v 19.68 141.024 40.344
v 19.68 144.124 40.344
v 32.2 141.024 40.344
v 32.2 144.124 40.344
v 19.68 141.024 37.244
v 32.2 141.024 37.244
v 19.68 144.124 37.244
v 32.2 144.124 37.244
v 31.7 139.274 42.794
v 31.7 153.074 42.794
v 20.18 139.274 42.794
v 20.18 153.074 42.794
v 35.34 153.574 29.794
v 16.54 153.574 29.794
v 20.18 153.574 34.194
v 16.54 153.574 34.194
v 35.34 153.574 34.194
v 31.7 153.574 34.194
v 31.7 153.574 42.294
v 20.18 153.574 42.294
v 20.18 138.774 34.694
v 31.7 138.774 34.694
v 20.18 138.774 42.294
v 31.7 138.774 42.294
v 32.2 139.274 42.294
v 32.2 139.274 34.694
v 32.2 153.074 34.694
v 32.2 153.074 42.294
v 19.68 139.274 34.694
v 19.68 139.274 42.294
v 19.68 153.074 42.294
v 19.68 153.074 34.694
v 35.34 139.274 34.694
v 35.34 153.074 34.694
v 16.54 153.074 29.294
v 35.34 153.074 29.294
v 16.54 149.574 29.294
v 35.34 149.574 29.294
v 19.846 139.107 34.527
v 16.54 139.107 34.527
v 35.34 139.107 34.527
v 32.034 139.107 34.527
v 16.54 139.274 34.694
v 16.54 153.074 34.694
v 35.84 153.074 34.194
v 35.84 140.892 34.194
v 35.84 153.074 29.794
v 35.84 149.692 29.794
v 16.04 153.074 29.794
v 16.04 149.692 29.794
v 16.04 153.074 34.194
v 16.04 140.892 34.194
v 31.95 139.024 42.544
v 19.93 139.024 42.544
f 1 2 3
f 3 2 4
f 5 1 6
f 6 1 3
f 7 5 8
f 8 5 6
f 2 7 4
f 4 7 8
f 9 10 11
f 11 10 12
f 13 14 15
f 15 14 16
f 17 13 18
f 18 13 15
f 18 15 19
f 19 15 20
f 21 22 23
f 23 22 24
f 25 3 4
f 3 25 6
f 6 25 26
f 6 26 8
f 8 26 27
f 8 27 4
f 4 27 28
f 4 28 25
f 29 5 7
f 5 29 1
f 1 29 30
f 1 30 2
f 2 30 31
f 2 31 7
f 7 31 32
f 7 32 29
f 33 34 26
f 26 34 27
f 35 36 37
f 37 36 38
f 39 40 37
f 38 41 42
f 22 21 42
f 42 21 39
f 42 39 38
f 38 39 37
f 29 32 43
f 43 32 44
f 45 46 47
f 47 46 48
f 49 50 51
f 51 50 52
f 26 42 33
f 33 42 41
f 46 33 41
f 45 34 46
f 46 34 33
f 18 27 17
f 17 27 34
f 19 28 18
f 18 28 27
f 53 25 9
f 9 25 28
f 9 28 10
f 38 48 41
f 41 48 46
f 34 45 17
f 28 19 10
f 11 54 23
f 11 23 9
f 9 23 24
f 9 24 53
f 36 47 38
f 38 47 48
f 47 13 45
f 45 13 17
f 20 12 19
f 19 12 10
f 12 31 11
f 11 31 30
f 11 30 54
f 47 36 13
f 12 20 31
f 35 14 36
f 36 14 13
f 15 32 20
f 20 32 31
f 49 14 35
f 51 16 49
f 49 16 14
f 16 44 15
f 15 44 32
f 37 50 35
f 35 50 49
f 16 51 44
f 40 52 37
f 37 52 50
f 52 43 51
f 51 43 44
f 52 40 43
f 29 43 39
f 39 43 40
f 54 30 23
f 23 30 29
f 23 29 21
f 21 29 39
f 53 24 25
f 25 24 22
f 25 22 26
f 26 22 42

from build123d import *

# Parameters (mm, degrees)
BOSS_EXTRUDE1_DEPTH      = 6.260392
BOSS_EXTRUDE1_DEPTH_BACK = 6.260392
SKETCH4_W                = 8.1
SKETCH4_H                = 14.8
SKETCH4_W_2              = 3.1
SKETCH4_H_2              = 3.1
BOSS_EXTRUDE2_DEPTH      = 9.9
BOSS_EXTRUDE2_DEPTH_BACK = 9.9
CHAMFER2_SIZE            = 0.5


with BuildPart() as part:
    # Sketch4 → Boss-Extrude1 (new, two sides: drawn at the far end of the back side and taken through both)
    with BuildSketch(Plane(origin=(25.940071358, 0, 0), x_dir=(0, 0, -1), z_dir=(1, 0, 0)).offset(-BOSS_EXTRUDE1_DEPTH_BACK)):
        with Locations((-38.743556796, 146.174028513)):
            Rectangle(SKETCH4_W, SKETCH4_H)
        with Locations((-38.793556796, 142.574028513)):
            Rectangle(SKETCH4_W_2, SKETCH4_H_2, mode=Mode.SUBTRACT)
    extrude(amount=BOSS_EXTRUDE1_DEPTH + BOSS_EXTRUDE1_DEPTH_BACK)

    # Sketch4<5> → Boss-Extrude2 (add, two sides: drawn at the far end of the back side and taken through both)
    with BuildSketch(Plane(origin=(25.940071358, 0, 0), x_dir=(0, 0, -1), z_dir=(1, 0, 0)).offset(-BOSS_EXTRUDE2_DEPTH_BACK)):
        Polygon((-34.693556796, 153.574028513), (-34.693556796, 138.774028513), (-29.293556796, 149.574028513), (-29.293556796, 153.574028513), align=None)
    extrude(amount=BOSS_EXTRUDE2_DEPTH + BOSS_EXTRUDE2_DEPTH_BACK)

    # Chamfer1
    # the kernel refuses this chamfer: 0.5, 0.372677996 mm, written as the material it takes off along each edge
    with BuildSketch(Plane(origin=(20.013012691, 153.240695179, 42.460223463), x_dir=(0, 0.7071067811865475, -0.7071067811865475), z_dir=(-0.5773502691896258, 0.5773502691896258, 0.5773502691896258)), Plane(origin=(35.506738024, 153.240695179, 29.62689013), x_dir=(0.7071067811865475, -0.7071067811865475, 0), z_dir=(0.5773502691896258, 0.5773502691896258, -0.5773502691896258)), Plane(origin=(16.373404691, 153.240695179, 29.62689013), x_dir=(0, -0.7071067811865475, -0.7071067811865475), z_dir=(-0.5773502691896258, 0.5773502691896258, -0.5773502691896258))) as chamfer1_piece_1:
        Polygon((-0.353553391, -0.204124145), (0.353553391, -0.204124145), (0, 0.40824829), align=None)
    extrude(amount=0.635085296, mode=Mode.SUBTRACT)
    with BuildSketch(Plane(origin=(31.867130024, 153.240695179, 42.460223463), x_dir=(0, 0.7071067811865475, -0.7071067811865475), z_dir=(0.5773502691896258, 0.5773502691896258, 0.5773502691896258)), Plane(origin=(35.506738024, 153.240695179, 34.360223463), x_dir=(0, 0.7071067811865475, -0.7071067811865475), z_dir=(0.5773502691896258, 0.5773502691896258, 0.5773502691896258)), Plane(origin=(16.373404691, 153.240695179, 34.360223463), x_dir=(0, -0.7071067811865475, 0.7071067811865475), z_dir=(-0.5773502691896258, 0.5773502691896258, 0.5773502691896258))) as chamfer1_piece_2:
        Polygon((-0.353553391, 0.204124145), (0.353553391, 0.204124145), (0, -0.40824829), align=None)
    extrude(amount=0.635085296, mode=Mode.SUBTRACT)
    with BuildSketch(Plane(origin=(35.506738024, 139.75781762, 34.471334574), x_dir=(0, -0.7071067811865777, -0.7071067811865174), z_dir=(0.9485360198619486, -0.223918979794528, 0.22391897979454709))) as chamfer1_piece_3:
        Polygon((0.184955718, -0.526311482), (0.420657979, -0.526311482), (-0.605613697, 1.052622965), align=None)
    extrude(amount=0.64485025, mode=Mode.SUBTRACT)
    with BuildSketch(Plane(origin=(16.373404691, 139.75781762, 34.471334574), x_dir=(0, 0.7071067811865777, 0.7071067811865174), z_dir=(-0.9485360198619486, -0.223918979794528, 0.22391897979454709))) as chamfer1_piece_4:
        Polygon((-0.420657979, -0.526311482), (-0.184955718, -0.526311482), (0.605613697, 1.052622965), align=None)
    extrude(amount=0.64485025, mode=Mode.SUBTRACT)
    with BuildSketch(Plane(origin=(18.393837864, 138.774028513, 42.793556796), x_dir=(0, 0.999621916911297, 0.027495876610582292), z_dir=(1, 0, 0)), Plane(origin=(18.393837864, 153.574028513, 42.793556796), x_dir=(0, 0.02749587661058229, -0.9996219169112968), z_dir=(1, 0, 0))) as chamfer1_piece_5:
        with BuildLine():
            Line((0.514336598, 0), (-0.028273577, -0.513558897))
            Line((-0.028273577, -0.513558897), (-0.038269797, -0.513283938))
            ThreePointArc((-0.038269797, -0.513283938), (-0.017064614, -0.256698915), (-0.009996219, 0.000274959))
            Line((-0.009996219, 0.000274959), (0.000274959, 0.009996219))
            ThreePointArc((0.000274959, 0.009996219), (0.257248832, 0.002927825), (0.514611556, 0.009996219))
            Line((0.514611556, 0.009996219), (0.514336598, 0))
        make_face()
    extrude(amount=15.092466988, mode=Mode.SUBTRACT)
    with BuildSketch(Plane(origin=(32.200463358, 154.859870007, 42.793556796), x_dir=(0.02749587661058229, 0, -0.9996219169112968), z_dir=(0, -1, 0)), Plane(origin=(19.679679358, 154.859870007, 42.793556796), x_dir=(0.999621916911297, 0, 0.027495876610582105), z_dir=(0, -1, 0)), Plane(origin=(16.040071358, 154.859870007, 34.693556796), x_dir=(0.999621916911297, 0, 0.027495876610582105), z_dir=(0, -1, 0))) as chamfer1_piece_6:
        with BuildLine():
            Line((0.514336598, 0), (-0.028273577, -0.513558897))
            Line((-0.028273577, -0.513558897), (-0.038269797, -0.513283938))
            ThreePointArc((-0.038269797, -0.513283938), (-0.017064614, -0.256698915), (-0.009996219, 0.000274959))
            Line((-0.009996219, 0.000274959), (0.000274959, 0.009996219))
            ThreePointArc((0.000274959, 0.009996219), (0.257248832, 0.002927825), (0.514611556, 0.009996219))
            Line((0.514611556, 0.009996219), (0.514336598, 0))
        make_face()
    extrude(amount=17.371682988, mode=Mode.SUBTRACT)
    with BuildSketch(Plane(origin=(32.200463358, 153.574028513, 34.693556796), x_dir=(-0.999621916911297, 0.027495876610582105, 0), z_dir=(0, 0, 1))) as chamfer1_piece_7:
        with BuildLine():
            Line((0.514336598, 0), (-0.028273577, 0.513558897))
            Line((-0.028273577, 0.513558897), (-0.038269797, 0.513283938))
            ThreePointArc((-0.038269797, 0.513283938), (-0.017064614, 0.256698915), (-0.009996219, -0.000274959))
            Line((-0.009996219, -0.000274959), (0.000274959, -0.009996219))
            ThreePointArc((0.000274959, -0.009996219), (0.257248832, -0.002927825), (0.514611556, -0.009996219))
            Line((0.514611556, -0.009996219), (0.514336598, 0))
        make_face()
    extrude(amount=9.385841494, mode=Mode.SUBTRACT)
    with BuildSketch(Plane(origin=(19.679679358, 153.574028513, 34.693556796), x_dir=(0.999621916911297, 0.027495876610582105, 0), z_dir=(0, 0, 1))) as chamfer1_piece_8:
        with BuildLine():
            Line((0.514336598, 0), (-0.028273577, -0.513558897))
            Line((-0.028273577, -0.513558897), (-0.038269797, -0.513283938))
            ThreePointArc((-0.038269797, -0.513283938), (-0.017064614, -0.256698915), (-0.009996219, 0.000274959))
            Line((-0.009996219, 0.000274959), (0.000274959, 0.009996219))
            ThreePointArc((0.000274959, 0.009996219), (0.257248832, 0.002927825), (0.514611556, 0.009996219))
            Line((0.514611556, 0.009996219), (0.514336598, 0))
        make_face()
    extrude(amount=9.385841494, mode=Mode.SUBTRACT)
    with BuildSketch(Plane(origin=(37.125912852, 153.574028513, 34.693556796), x_dir=(0, -0.999621916911297, 0.027495876610582292), z_dir=(-1, 0, 0))) as chamfer1_piece_9:
        with BuildLine():
            Line((0.514336598, 0), (-0.028273577, -0.513558897))
            Line((-0.028273577, -0.513558897), (-0.038269797, -0.513283938))
            ThreePointArc((-0.038269797, -0.513283938), (-0.017064614, -0.256698915), (-0.009996219, 0.000274959))
            Line((-0.009996219, 0.000274959), (0.000274959, 0.009996219))
            ThreePointArc((0.000274959, 0.009996219), (0.257248832, 0.002927825), (0.514611556, 0.009996219))
            Line((0.514611556, 0.009996219), (0.514336598, 0))
        make_face()
    extrude(amount=4.925449494, mode=Mode.SUBTRACT)
    with BuildSketch(Plane(origin=(35.840071358, 153.574028513, 28.007715302), x_dir=(-0.999621916911297, 0.027495876610582292, 0), z_dir=(0, 0, 1))) as chamfer1_piece_10:
        with BuildLine():
            Line((0.514336598, 0), (-0.028273577, 0.513558897))
            Line((-0.028273577, 0.513558897), (-0.038269797, 0.513283938))
            ThreePointArc((-0.038269797, 0.513283938), (-0.017064614, 0.256698915), (-0.009996219, -0.000274959))
            Line((-0.009996219, -0.000274959), (0.000274959, -0.009996219))
            ThreePointArc((0.000274959, -0.009996219), (0.257248832, -0.002927825), (0.514611556, -0.009996219))
            Line((0.514611556, -0.009996219), (0.514336598, 0))
        make_face()
    extrude(amount=7.971682988, mode=Mode.SUBTRACT)
    with BuildSketch(Plane(origin=(37.125912852, 153.574028513, 29.293556796), x_dir=(0, 0.027495876610582105, 0.999621916911297), z_dir=(-1, 0, 0))) as chamfer1_piece_11:
        with BuildLine():
            Line((0.514336598, 0), (-0.028273577, -0.513558897))
            Line((-0.028273577, -0.513558897), (-0.038269797, -0.513283938))
            ThreePointArc((-0.038269797, -0.513283938), (-0.017064614, -0.256698915), (-0.009996219, 0.000274959))
            Line((-0.009996219, 0.000274959), (0.000274959, 0.009996219))
            ThreePointArc((0.000274959, 0.009996219), (0.257248832, 0.002927825), (0.514611556, 0.009996219))
            Line((0.514611556, 0.009996219), (0.514336598, 0))
        make_face()
    extrude(amount=22.371682988, mode=Mode.SUBTRACT)
    with BuildSketch(Plane(origin=(16.040071358, 153.574028513, 28.007715302), x_dir=(0.999621916911297, 0.027495876610582105, 0), z_dir=(0, 0, 1))) as chamfer1_piece_12:
        with BuildLine():
            Line((0.514336598, 0), (-0.028273577, -0.513558897))
            Line((-0.028273577, -0.513558897), (-0.038269797, -0.513283938))
            ThreePointArc((-0.038269797, -0.513283938), (-0.017064614, -0.256698915), (-0.009996219, 0.000274959))
            Line((-0.009996219, 0.000274959), (0.000274959, 0.009996219))
            ThreePointArc((0.000274959, 0.009996219), (0.257248832, 0.002927825), (0.514611556, 0.009996219))
            Line((0.514611556, 0.009996219), (0.514336598, 0))
        make_face()
    extrude(amount=7.971682988, mode=Mode.SUBTRACT)
    with BuildSketch(Plane(origin=(35.840071358, 148.288187019, 29.293556796), x_dir=(0.027495876610582105, 0, 0.999621916911297), z_dir=(0, 1, 0)), Plane(origin=(16.040071358, 148.288187019, 29.293556796), x_dir=(0.9996219169112968, 0, -0.027495876610589005), z_dir=(0, 1, 0))) as chamfer1_piece_13:
        with BuildLine():
            Line((0.514336598, 0), (-0.028273577, -0.513558897))
            Line((-0.028273577, -0.513558897), (-0.038269797, -0.513283938))
            ThreePointArc((-0.038269797, -0.513283938), (-0.017064614, -0.256698915), (-0.009996219, 0.000274959))
            Line((-0.009996219, 0.000274959), (0.000274959, 0.009996219))
            ThreePointArc((0.000274959, 0.009996219), (0.257248832, 0.002927825), (0.514611556, 0.009996219))
            Line((0.514611556, 0.009996219), (0.514336598, 0))
        make_face()
    extrude(amount=6.571682988, mode=Mode.SUBTRACT)
    with BuildSketch(Plane(origin=(35.840071358, 137.623936917, 35.268602594), x_dir=(-0.999621916911297, -0.012296529840442863, -0.024593059680883298), z_dir=(0, 0.8944271909998982, -0.44721359549999323))) as chamfer1_piece_14:
        with BuildLine():
            Line((0.514336598, 0), (-0.028273577, 0.513558897))
            Line((-0.028273577, 0.513558897), (-0.038269797, 0.513283938))
            ThreePointArc((-0.038269797, 0.513283938), (-0.017064614, 0.256698915), (-0.009996219, -0.000274959))
            Line((-0.009996219, -0.000274959), (0.000274959, -0.009996219))
            ThreePointArc((0.000274959, -0.009996219), (0.257248832, -0.002927825), (0.514611556, -0.009996219))
            Line((0.514611556, -0.009996219), (0.514336598, 0))
        make_face()
    extrude(amount=14.646450066, mode=Mode.SUBTRACT)
    with BuildSketch(Plane(origin=(16.040071358, 137.623936917, 35.268602594), x_dir=(0.999621916911297, -0.012296529840442778, -0.024593059680883128), z_dir=(0, 0.8944271909998982, -0.44721359549999323))) as chamfer1_piece_15:
        with BuildLine():
            Line((0.514336598, 0), (-0.028273577, -0.513558897))
            Line((-0.028273577, -0.513558897), (-0.038269797, -0.513283938))
            ThreePointArc((-0.038269797, -0.513283938), (-0.017064614, -0.256698915), (-0.009996219, 0.000274959))
            Line((-0.009996219, 0.000274959), (0.000274959, 0.009996219))
            ThreePointArc((0.000274959, 0.009996219), (0.257248832, 0.002927825), (0.514611556, 0.009996219))
            Line((0.514611556, 0.009996219), (0.514336598, 0))
        make_face()
    extrude(amount=14.646450066, mode=Mode.SUBTRACT)
    with BuildSketch(Plane(origin=(19.679679358, 153.574028513, 34.693556796), x_dir=(0, 0.02749587661058229, -0.9996219169112968), z_dir=(-1, 0, 0))) as chamfer1_piece_16:
        with BuildLine():
            Line((0.514336598, 0), (-0.028273577, 0.513558897))
            Line((-0.028273577, 0.513558897), (-0.038269797, 0.513283938))
            ThreePointArc((-0.038269797, 0.513283938), (-0.017064614, 0.256698915), (-0.009996219, -0.000274959))
            Line((-0.009996219, -0.000274959), (0.000274959, -0.009996219))
            ThreePointArc((0.000274959, -0.009996219), (0.257248832, -0.002927825), (0.514611556, -0.009996219))
            Line((0.514611556, -0.009996219), (0.514336598, 0))
        make_face()
    extrude(amount=4.925449494, mode=Mode.SUBTRACT)
    with BuildSketch(Plane(origin=(35.840071358, 154.859870007, 34.693556796), x_dir=(-0.999621916911297, 0, 0.027495876610582292), z_dir=(0, -1, 0))) as chamfer1_piece_17:
        with BuildLine():
            Line((0.514336598, 0), (-0.028273577, 0.513558897))
            Line((-0.028273577, 0.513558897), (-0.038269797, 0.513283938))
            ThreePointArc((-0.038269797, 0.513283938), (-0.017064614, 0.256698915), (-0.009996219, -0.000274959))
            Line((-0.009996219, -0.000274959), (0.000274959, -0.009996219))
            ThreePointArc((0.000274959, -0.009996219), (0.257248832, -0.002927825), (0.514611556, -0.009996219))
            Line((0.514611556, -0.009996219), (0.514336598, 0))
        make_face()
    extrude(amount=17.371682988, mode=Mode.SUBTRACT)
    with BuildSketch(Plane(origin=(32.200463358, 138.774028513, 34.693556796), x_dir=(0, 0.999621916911297, 0.027495876610582292), z_dir=(1, 0, 0))) as chamfer1_piece_18:
        with BuildLine():
            Line((0.514336598, 0), (0.31409902, -0.189516883))
            Line((0.31409902, -0.189516883), (0.309382645, -0.198334808))
            ThreePointArc((0.309382645, -0.198334808), (0.156807481, -0.095210948), (-0.004716376, -0.008817925))
            Line((-0.004716376, -0.008817925), (0.000274959, 0.009996219))
            ThreePointArc((0.000274959, 0.009996219), (0.257248832, 0.002927825), (0.514611556, 0.009996219))
            Line((0.514611556, 0.009996219), (0.514336598, 0))
        make_face()
    extrude(amount=4.925449494, mode=Mode.SUBTRACT)
    with BuildSketch(Plane(origin=(14.754229864, 138.774028513, 34.693556796), x_dir=(0, 0.8700995906888151, -0.492875950197569), z_dir=(1, 0, 0))) as chamfer1_piece_19:
        with BuildLine():
            Line((0.366844441, 0), (0.440384543, 0.26571336))
            Line((0.440384543, 0.26571336), (0.435455784, 0.274414356))
            ThreePointArc((0.435455784, 0.274414356), (0.218748671, 0.135405143), (-0.00492876, 0.008700996))
            Line((-0.00492876, 0.008700996), (0.000517213, -0.009986616))
            ThreePointArc((0.000517213, -0.009986616), (0.183448762, -0.00051248), (0.367361654, -0.009986616))
            Line((0.367361654, -0.009986616), (0.366844441, 0))
        make_face()
    extrude(amount=4.925449494, mode=Mode.SUBTRACT)
    with BuildSketch(Plane(origin=(37.125912852, 153.574028513, 34.693556796), x_dir=(0, -0.999621916911297, 0.027495876610582292), z_dir=(-1, 0, 0))) as chamfer1_piece_20a_section:
        with BuildLine():
            Line((0.514336598, 0), (-0.028273577, -0.513558897))
            Line((-0.028273577, -0.513558897), (-0.038269797, -0.513283938))
            ThreePointArc((-0.038269797, -0.513283938), (-0.017064614, -0.256698915), (-0.009996219, 0.000274959))
            Line((-0.009996219, 0.000274959), (0.000274959, 0.009996219))
            ThreePointArc((0.000274959, 0.009996219), (0.257248832, 0.002927825), (0.514611556, 0.009996219))
            Line((0.514611556, 0.009996219), (0.514336598, 0))
        make_face()
    chamfer1_piece_20a = extrude(amount=6.211290988, mode=Mode.PRIVATE)
    chamfer1_piece_20a = split(chamfer1_piece_20a, bisect_by=Plane(origin=(32.200463358, 153.409131699, 34.528659983), z_dir=(-1, 0, 0)), keep=Keep.TOP, mode=Mode.PRIVATE)
    with BuildSketch(Plane(origin=(32.200463358, 153.574028513, 33.407715302), x_dir=(-0.999621916911297, 0.027495876610582105, 0), z_dir=(0, 0, 1))) as chamfer1_piece_20b_section:
        with BuildLine():
            Line((0.514336598, 0), (-0.028273577, 0.513558897))
            Line((-0.028273577, 0.513558897), (-0.038269797, 0.513283938))
            ThreePointArc((-0.038269797, 0.513283938), (-0.017064614, 0.256698915), (-0.009996219, -0.000274959))
            Line((-0.009996219, -0.000274959), (0.000274959, -0.009996219))
            ThreePointArc((0.000274959, -0.009996219), (0.257248832, -0.002927825), (0.514611556, -0.009996219))
            Line((0.514611556, -0.009996219), (0.514336598, 0))
        make_face()
    chamfer1_piece_20b = extrude(amount=10.671682988, mode=Mode.PRIVATE)
    chamfer1_piece_20b = split(chamfer1_piece_20b, bisect_by=Plane(origin=(32.035566544, 153.409131699, 34.693556796), z_dir=(0, 0, -1)), keep=Keep.TOP, mode=Mode.PRIVATE)
    chamfer1_piece_20 = chamfer1_piece_20a & chamfer1_piece_20b
    add(chamfer1_piece_20, mode=Mode.SUBTRACT)
    with BuildSketch(Plane(origin=(19.679679358, 153.574028513, 33.407715302), x_dir=(0.999621916911297, 0.027495876610582105, 0), z_dir=(0, 0, 1))) as chamfer1_piece_21a_section:
        with BuildLine():
            Line((0.514336598, 0), (-0.028273577, -0.513558897))
            Line((-0.028273577, -0.513558897), (-0.038269797, -0.513283938))
            ThreePointArc((-0.038269797, -0.513283938), (-0.017064614, -0.256698915), (-0.009996219, 0.000274959))
            Line((-0.009996219, 0.000274959), (0.000274959, 0.009996219))
            ThreePointArc((0.000274959, 0.009996219), (0.257248832, 0.002927825), (0.514611556, 0.009996219))
            Line((0.514611556, 0.009996219), (0.514336598, 0))
        make_face()
    chamfer1_piece_21a = extrude(amount=10.671682988, mode=Mode.PRIVATE)
    chamfer1_piece_21a = split(chamfer1_piece_21a, bisect_by=Plane(origin=(19.844576171, 153.409131699, 34.693556796), z_dir=(0, 0, -1)), keep=Keep.TOP, mode=Mode.PRIVATE)
    with BuildSketch(Plane(origin=(20.965520852, 153.574028513, 34.693556796), x_dir=(0, 0.02749587661058229, -0.9996219169112968), z_dir=(-1, 0, 0))) as chamfer1_piece_21b_section:
        with BuildLine():
            Line((0.514336598, 0), (-0.028273577, 0.513558897))
            Line((-0.028273577, 0.513558897), (-0.038269797, 0.513283938))
            ThreePointArc((-0.038269797, 0.513283938), (-0.017064614, 0.256698915), (-0.009996219, -0.000274959))
            Line((-0.009996219, -0.000274959), (0.000274959, -0.009996219))
            ThreePointArc((0.000274959, -0.009996219), (0.257248832, -0.002927825), (0.514611556, -0.009996219))
            Line((0.514611556, -0.009996219), (0.514336598, 0))
        make_face()
    chamfer1_piece_21b = extrude(amount=6.211290988, mode=Mode.PRIVATE)
    chamfer1_piece_21b = split(chamfer1_piece_21b, bisect_by=Plane(origin=(19.679679358, 153.409131699, 34.528659983), z_dir=(1, 0, 0)), keep=Keep.TOP, mode=Mode.PRIVATE)
    chamfer1_piece_21 = chamfer1_piece_21a & chamfer1_piece_21b
    add(chamfer1_piece_21, mode=Mode.SUBTRACT)

    # Chamfer2
    chamfer2_edges = [part.edges().sort_by_distance(p)[0] for p in [
        (32.200463358, 138.774028513, 38.493556796),
        (19.679679358, 138.774028513, 38.493556796),
    ]]
    chamfer(chamfer2_edges, length=CHAMFER2_SIZE)


solid = part.part
